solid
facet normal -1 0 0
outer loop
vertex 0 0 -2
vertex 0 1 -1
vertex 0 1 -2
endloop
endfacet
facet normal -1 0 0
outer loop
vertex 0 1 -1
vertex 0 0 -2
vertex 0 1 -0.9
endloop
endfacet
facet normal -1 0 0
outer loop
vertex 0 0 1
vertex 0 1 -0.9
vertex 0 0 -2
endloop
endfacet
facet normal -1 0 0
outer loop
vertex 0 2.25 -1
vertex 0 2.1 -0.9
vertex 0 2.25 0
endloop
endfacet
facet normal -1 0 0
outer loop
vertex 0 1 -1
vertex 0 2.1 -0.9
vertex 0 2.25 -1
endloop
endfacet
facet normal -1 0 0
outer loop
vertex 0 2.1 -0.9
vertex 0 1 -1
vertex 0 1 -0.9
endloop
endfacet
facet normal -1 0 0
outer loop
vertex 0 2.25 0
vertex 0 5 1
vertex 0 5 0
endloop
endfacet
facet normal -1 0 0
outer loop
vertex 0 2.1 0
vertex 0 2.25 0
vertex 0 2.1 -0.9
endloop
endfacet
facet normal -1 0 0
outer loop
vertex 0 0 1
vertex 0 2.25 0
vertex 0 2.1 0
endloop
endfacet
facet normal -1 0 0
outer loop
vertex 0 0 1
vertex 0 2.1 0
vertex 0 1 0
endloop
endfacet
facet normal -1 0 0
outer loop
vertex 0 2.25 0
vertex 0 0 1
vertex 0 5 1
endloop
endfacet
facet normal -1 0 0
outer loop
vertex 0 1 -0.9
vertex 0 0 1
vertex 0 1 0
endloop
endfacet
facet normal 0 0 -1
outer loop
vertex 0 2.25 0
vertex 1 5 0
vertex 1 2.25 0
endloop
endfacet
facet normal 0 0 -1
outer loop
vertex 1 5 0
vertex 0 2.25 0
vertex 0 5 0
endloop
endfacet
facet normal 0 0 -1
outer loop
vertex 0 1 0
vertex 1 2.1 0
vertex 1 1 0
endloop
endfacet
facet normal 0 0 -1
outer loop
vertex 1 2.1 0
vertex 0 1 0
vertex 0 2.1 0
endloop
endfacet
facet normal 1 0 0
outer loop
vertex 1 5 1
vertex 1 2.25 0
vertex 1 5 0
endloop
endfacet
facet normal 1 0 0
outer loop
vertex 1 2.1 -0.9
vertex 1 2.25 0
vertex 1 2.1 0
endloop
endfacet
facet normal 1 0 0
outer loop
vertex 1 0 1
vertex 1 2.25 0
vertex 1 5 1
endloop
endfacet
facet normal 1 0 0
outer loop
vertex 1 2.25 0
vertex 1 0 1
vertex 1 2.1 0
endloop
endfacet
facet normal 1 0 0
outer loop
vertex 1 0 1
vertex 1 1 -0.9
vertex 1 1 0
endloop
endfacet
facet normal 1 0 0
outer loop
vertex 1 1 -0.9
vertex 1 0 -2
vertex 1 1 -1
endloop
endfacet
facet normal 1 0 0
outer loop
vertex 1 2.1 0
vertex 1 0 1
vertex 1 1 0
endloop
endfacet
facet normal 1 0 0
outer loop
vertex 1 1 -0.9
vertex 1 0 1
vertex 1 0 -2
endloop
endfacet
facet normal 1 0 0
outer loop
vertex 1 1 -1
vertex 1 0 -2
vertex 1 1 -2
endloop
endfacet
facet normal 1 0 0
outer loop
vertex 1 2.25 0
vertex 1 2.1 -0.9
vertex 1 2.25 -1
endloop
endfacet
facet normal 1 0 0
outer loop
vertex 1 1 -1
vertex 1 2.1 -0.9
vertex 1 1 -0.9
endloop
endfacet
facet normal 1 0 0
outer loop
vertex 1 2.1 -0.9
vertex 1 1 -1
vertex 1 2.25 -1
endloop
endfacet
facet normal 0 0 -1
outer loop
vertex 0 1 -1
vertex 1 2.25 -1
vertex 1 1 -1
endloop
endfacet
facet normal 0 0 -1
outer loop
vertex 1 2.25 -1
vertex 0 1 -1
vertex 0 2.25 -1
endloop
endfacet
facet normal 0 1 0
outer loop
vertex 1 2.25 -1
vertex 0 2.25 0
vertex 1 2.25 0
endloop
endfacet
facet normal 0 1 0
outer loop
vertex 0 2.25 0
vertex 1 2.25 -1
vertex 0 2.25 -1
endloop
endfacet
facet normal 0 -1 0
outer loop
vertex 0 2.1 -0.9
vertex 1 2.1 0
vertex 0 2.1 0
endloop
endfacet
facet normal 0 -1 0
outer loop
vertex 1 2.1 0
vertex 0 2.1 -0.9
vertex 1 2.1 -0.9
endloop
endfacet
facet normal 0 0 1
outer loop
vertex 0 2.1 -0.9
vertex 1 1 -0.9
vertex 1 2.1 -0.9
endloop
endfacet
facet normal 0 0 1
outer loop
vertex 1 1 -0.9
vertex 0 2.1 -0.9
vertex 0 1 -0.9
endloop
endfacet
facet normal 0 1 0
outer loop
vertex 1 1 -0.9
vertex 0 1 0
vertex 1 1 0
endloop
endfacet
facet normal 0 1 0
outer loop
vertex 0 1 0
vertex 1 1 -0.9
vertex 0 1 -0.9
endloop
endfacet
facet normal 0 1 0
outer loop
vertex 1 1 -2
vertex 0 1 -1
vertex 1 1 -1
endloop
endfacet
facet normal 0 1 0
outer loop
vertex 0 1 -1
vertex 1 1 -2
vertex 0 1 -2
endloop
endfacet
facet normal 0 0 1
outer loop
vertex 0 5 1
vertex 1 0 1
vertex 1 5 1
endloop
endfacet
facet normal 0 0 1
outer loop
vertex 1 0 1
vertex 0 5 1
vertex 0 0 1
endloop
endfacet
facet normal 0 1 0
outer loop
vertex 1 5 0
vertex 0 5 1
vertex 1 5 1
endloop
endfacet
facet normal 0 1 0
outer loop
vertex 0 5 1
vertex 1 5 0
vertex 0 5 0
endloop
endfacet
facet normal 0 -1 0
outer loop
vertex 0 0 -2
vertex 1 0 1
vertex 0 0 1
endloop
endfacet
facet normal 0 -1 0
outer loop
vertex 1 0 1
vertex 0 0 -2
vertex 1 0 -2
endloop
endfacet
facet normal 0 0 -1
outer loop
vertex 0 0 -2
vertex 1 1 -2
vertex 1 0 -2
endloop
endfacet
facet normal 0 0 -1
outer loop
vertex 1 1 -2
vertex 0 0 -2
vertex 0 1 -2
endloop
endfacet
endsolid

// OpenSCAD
cube([1,5,1]);

translate([0,0,-2])
cube([1,1,3]);

difference(){
translate([0,0.75,-1])
cube([1,1.5,1]);

translate([-0.1,1,-.9])
cube([2,1.1,1]);
    
}
